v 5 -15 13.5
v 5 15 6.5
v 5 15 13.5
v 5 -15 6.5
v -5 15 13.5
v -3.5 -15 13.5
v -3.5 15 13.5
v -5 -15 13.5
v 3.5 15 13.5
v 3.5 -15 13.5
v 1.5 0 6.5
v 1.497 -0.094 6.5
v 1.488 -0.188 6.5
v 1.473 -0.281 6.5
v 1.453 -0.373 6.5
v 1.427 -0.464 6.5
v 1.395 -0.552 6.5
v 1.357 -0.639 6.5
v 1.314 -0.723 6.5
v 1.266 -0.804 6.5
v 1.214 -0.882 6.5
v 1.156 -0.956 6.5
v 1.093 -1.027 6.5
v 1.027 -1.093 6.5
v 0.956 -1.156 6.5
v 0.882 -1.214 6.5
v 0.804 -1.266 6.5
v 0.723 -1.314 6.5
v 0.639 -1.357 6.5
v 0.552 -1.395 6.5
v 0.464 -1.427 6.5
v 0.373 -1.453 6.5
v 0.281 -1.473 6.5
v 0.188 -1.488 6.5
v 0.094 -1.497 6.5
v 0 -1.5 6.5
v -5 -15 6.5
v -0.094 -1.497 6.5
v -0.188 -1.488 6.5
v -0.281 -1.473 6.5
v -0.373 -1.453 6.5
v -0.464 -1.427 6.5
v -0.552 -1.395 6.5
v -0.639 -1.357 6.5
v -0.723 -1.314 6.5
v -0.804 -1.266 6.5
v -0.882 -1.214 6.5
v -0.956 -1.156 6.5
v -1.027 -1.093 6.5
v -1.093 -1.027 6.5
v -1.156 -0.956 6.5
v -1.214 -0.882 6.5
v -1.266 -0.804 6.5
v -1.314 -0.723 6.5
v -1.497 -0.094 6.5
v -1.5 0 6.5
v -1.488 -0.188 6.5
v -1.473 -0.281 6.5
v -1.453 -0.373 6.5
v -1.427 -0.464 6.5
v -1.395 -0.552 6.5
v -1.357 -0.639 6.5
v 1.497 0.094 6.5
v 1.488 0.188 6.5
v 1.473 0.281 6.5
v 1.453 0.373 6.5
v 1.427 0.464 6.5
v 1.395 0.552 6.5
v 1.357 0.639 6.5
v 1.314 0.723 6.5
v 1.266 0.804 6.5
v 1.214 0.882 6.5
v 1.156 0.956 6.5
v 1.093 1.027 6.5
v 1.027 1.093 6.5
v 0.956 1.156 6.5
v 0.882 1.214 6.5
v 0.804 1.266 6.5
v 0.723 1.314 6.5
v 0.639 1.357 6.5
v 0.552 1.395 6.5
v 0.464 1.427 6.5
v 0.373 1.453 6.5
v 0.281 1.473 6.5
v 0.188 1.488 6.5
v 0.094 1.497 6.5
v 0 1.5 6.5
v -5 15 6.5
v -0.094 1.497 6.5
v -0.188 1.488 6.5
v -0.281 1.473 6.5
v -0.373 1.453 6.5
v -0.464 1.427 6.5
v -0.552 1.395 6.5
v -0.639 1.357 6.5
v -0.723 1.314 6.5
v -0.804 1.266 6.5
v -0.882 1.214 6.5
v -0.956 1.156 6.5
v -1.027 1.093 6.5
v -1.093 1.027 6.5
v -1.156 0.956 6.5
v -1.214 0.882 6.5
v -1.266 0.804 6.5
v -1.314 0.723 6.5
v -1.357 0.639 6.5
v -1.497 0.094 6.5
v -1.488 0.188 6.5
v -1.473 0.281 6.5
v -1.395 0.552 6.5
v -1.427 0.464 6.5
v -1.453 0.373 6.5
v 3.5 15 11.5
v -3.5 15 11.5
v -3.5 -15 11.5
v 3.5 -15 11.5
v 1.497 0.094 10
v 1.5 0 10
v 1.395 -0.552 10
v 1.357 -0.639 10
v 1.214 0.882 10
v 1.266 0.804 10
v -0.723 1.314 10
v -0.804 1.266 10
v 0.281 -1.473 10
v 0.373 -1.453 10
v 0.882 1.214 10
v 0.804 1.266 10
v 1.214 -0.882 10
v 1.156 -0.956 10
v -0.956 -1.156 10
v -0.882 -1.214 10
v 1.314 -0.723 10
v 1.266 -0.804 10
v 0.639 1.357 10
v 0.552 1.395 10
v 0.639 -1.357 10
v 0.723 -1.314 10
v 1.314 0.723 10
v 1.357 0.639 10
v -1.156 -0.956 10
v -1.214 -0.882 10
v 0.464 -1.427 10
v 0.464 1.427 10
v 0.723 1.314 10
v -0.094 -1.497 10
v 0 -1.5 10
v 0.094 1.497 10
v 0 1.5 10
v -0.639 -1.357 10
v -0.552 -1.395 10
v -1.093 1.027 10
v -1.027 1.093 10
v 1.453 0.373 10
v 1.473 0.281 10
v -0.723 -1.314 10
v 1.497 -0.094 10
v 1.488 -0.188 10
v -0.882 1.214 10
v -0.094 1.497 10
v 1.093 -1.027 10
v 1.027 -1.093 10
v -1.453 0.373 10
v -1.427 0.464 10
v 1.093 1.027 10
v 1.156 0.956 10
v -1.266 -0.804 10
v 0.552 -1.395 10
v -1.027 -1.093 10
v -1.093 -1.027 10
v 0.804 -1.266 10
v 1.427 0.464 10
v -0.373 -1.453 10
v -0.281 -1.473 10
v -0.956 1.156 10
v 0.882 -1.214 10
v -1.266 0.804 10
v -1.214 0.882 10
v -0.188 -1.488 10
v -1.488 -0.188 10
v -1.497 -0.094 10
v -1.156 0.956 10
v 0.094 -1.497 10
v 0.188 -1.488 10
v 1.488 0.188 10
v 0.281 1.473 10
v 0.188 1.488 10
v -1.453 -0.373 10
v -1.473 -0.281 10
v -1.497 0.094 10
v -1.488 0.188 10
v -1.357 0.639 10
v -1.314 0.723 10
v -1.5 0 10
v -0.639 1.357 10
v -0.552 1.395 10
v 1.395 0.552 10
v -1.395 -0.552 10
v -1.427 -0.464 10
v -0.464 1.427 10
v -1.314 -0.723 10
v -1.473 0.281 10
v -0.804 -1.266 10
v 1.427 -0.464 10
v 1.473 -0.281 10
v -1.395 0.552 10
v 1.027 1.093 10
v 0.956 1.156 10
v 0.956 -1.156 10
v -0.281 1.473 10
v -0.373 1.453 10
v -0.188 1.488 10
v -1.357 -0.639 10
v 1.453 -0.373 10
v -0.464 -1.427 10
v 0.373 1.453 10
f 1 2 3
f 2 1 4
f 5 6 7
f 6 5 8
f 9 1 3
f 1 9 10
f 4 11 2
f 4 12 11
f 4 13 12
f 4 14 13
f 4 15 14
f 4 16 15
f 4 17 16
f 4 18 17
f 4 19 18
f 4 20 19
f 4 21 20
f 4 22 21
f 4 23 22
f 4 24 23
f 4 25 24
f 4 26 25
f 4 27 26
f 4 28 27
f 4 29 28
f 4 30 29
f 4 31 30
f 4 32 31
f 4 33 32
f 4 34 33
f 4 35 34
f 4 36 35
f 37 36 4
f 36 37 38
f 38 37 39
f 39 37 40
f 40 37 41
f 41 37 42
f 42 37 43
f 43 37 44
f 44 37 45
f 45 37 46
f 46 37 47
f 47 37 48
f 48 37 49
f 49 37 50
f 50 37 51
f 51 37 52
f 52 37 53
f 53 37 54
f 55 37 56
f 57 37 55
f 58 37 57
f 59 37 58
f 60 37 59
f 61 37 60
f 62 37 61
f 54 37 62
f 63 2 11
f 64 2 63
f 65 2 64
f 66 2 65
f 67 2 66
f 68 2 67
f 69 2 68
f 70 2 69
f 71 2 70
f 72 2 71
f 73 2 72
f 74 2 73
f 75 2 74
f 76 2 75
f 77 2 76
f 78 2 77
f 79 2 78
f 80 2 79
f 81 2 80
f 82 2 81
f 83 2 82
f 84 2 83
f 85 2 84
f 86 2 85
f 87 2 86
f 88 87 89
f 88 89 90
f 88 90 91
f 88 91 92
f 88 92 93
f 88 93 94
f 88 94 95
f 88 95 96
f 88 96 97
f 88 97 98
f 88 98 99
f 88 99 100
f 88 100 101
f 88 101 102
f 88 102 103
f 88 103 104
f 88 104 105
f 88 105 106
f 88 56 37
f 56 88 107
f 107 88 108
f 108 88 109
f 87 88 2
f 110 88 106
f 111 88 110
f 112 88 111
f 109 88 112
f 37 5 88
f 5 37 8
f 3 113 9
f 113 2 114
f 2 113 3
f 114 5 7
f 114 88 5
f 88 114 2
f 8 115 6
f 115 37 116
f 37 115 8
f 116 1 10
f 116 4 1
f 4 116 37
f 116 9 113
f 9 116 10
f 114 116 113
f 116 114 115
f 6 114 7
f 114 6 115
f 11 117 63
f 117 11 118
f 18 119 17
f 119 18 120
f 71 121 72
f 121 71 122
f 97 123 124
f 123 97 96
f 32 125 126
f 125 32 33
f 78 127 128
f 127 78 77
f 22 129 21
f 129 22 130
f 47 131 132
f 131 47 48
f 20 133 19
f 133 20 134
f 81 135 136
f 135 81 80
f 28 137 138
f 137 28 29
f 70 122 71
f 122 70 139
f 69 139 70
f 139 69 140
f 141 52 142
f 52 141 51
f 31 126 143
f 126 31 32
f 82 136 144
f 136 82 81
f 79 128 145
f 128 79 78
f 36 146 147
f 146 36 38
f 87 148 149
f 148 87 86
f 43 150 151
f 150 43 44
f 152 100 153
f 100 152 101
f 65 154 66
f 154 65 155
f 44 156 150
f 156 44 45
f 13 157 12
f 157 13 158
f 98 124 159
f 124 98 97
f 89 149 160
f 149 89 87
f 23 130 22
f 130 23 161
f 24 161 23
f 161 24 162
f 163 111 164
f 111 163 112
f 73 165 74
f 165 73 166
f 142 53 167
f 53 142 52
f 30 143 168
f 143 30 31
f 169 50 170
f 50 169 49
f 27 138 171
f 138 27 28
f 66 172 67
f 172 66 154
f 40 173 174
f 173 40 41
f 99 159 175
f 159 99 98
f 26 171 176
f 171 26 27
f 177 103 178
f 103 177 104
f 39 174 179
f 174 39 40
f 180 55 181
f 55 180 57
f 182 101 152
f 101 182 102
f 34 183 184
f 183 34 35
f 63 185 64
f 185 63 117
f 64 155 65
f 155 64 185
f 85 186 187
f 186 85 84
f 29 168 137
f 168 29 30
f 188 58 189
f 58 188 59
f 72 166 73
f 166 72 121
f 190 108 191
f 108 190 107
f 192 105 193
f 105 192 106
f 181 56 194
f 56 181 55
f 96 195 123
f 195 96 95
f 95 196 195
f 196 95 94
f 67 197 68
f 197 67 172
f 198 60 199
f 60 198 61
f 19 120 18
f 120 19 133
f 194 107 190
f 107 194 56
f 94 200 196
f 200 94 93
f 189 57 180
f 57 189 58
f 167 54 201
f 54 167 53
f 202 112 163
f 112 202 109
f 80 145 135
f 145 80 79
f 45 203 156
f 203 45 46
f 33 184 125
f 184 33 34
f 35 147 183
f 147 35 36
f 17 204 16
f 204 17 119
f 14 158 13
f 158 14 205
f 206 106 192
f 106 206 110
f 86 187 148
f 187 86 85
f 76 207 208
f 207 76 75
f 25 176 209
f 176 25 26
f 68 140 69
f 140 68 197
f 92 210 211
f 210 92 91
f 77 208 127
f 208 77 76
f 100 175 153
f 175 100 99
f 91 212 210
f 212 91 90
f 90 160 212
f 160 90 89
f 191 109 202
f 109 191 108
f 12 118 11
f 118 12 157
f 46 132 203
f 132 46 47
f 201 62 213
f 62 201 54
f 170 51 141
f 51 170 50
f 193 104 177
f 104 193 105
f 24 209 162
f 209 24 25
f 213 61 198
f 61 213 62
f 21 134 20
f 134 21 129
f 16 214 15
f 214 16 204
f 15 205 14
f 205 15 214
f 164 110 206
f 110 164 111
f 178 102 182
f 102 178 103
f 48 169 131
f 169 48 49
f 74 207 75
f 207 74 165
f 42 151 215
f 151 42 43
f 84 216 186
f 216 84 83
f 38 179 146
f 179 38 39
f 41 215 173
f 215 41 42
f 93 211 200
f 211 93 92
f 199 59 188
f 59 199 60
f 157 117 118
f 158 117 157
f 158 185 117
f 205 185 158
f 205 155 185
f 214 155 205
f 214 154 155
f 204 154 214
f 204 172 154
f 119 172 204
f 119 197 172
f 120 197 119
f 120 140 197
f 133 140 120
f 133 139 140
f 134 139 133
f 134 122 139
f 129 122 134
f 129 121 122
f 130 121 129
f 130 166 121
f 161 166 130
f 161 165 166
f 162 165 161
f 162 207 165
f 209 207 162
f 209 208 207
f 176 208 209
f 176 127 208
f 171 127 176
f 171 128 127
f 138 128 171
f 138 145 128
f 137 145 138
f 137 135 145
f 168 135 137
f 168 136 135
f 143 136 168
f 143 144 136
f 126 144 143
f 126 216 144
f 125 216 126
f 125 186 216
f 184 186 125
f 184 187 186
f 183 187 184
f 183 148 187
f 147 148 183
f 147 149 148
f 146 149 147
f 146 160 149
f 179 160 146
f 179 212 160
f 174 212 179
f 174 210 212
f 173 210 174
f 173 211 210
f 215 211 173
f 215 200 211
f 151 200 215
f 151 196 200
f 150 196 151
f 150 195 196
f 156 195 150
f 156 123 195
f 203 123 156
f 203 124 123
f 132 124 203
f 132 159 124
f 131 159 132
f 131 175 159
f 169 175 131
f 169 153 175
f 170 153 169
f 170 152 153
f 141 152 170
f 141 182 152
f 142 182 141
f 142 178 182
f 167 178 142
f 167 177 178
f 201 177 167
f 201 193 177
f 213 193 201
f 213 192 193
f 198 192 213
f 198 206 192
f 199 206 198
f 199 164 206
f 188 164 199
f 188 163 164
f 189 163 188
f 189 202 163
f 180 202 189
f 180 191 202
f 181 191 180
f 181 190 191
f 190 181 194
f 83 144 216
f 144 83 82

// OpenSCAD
$fn = 100;

difference() {
union() {
    translate([0,0,10]) cube([10,30,7], true);
    //translate([0,0,7.5]) cube([10,10,10], true);
}

translate([0,0,14]) cube([7,35,5], true);
cylinder(20, 1.5, 1.5, true);
}
